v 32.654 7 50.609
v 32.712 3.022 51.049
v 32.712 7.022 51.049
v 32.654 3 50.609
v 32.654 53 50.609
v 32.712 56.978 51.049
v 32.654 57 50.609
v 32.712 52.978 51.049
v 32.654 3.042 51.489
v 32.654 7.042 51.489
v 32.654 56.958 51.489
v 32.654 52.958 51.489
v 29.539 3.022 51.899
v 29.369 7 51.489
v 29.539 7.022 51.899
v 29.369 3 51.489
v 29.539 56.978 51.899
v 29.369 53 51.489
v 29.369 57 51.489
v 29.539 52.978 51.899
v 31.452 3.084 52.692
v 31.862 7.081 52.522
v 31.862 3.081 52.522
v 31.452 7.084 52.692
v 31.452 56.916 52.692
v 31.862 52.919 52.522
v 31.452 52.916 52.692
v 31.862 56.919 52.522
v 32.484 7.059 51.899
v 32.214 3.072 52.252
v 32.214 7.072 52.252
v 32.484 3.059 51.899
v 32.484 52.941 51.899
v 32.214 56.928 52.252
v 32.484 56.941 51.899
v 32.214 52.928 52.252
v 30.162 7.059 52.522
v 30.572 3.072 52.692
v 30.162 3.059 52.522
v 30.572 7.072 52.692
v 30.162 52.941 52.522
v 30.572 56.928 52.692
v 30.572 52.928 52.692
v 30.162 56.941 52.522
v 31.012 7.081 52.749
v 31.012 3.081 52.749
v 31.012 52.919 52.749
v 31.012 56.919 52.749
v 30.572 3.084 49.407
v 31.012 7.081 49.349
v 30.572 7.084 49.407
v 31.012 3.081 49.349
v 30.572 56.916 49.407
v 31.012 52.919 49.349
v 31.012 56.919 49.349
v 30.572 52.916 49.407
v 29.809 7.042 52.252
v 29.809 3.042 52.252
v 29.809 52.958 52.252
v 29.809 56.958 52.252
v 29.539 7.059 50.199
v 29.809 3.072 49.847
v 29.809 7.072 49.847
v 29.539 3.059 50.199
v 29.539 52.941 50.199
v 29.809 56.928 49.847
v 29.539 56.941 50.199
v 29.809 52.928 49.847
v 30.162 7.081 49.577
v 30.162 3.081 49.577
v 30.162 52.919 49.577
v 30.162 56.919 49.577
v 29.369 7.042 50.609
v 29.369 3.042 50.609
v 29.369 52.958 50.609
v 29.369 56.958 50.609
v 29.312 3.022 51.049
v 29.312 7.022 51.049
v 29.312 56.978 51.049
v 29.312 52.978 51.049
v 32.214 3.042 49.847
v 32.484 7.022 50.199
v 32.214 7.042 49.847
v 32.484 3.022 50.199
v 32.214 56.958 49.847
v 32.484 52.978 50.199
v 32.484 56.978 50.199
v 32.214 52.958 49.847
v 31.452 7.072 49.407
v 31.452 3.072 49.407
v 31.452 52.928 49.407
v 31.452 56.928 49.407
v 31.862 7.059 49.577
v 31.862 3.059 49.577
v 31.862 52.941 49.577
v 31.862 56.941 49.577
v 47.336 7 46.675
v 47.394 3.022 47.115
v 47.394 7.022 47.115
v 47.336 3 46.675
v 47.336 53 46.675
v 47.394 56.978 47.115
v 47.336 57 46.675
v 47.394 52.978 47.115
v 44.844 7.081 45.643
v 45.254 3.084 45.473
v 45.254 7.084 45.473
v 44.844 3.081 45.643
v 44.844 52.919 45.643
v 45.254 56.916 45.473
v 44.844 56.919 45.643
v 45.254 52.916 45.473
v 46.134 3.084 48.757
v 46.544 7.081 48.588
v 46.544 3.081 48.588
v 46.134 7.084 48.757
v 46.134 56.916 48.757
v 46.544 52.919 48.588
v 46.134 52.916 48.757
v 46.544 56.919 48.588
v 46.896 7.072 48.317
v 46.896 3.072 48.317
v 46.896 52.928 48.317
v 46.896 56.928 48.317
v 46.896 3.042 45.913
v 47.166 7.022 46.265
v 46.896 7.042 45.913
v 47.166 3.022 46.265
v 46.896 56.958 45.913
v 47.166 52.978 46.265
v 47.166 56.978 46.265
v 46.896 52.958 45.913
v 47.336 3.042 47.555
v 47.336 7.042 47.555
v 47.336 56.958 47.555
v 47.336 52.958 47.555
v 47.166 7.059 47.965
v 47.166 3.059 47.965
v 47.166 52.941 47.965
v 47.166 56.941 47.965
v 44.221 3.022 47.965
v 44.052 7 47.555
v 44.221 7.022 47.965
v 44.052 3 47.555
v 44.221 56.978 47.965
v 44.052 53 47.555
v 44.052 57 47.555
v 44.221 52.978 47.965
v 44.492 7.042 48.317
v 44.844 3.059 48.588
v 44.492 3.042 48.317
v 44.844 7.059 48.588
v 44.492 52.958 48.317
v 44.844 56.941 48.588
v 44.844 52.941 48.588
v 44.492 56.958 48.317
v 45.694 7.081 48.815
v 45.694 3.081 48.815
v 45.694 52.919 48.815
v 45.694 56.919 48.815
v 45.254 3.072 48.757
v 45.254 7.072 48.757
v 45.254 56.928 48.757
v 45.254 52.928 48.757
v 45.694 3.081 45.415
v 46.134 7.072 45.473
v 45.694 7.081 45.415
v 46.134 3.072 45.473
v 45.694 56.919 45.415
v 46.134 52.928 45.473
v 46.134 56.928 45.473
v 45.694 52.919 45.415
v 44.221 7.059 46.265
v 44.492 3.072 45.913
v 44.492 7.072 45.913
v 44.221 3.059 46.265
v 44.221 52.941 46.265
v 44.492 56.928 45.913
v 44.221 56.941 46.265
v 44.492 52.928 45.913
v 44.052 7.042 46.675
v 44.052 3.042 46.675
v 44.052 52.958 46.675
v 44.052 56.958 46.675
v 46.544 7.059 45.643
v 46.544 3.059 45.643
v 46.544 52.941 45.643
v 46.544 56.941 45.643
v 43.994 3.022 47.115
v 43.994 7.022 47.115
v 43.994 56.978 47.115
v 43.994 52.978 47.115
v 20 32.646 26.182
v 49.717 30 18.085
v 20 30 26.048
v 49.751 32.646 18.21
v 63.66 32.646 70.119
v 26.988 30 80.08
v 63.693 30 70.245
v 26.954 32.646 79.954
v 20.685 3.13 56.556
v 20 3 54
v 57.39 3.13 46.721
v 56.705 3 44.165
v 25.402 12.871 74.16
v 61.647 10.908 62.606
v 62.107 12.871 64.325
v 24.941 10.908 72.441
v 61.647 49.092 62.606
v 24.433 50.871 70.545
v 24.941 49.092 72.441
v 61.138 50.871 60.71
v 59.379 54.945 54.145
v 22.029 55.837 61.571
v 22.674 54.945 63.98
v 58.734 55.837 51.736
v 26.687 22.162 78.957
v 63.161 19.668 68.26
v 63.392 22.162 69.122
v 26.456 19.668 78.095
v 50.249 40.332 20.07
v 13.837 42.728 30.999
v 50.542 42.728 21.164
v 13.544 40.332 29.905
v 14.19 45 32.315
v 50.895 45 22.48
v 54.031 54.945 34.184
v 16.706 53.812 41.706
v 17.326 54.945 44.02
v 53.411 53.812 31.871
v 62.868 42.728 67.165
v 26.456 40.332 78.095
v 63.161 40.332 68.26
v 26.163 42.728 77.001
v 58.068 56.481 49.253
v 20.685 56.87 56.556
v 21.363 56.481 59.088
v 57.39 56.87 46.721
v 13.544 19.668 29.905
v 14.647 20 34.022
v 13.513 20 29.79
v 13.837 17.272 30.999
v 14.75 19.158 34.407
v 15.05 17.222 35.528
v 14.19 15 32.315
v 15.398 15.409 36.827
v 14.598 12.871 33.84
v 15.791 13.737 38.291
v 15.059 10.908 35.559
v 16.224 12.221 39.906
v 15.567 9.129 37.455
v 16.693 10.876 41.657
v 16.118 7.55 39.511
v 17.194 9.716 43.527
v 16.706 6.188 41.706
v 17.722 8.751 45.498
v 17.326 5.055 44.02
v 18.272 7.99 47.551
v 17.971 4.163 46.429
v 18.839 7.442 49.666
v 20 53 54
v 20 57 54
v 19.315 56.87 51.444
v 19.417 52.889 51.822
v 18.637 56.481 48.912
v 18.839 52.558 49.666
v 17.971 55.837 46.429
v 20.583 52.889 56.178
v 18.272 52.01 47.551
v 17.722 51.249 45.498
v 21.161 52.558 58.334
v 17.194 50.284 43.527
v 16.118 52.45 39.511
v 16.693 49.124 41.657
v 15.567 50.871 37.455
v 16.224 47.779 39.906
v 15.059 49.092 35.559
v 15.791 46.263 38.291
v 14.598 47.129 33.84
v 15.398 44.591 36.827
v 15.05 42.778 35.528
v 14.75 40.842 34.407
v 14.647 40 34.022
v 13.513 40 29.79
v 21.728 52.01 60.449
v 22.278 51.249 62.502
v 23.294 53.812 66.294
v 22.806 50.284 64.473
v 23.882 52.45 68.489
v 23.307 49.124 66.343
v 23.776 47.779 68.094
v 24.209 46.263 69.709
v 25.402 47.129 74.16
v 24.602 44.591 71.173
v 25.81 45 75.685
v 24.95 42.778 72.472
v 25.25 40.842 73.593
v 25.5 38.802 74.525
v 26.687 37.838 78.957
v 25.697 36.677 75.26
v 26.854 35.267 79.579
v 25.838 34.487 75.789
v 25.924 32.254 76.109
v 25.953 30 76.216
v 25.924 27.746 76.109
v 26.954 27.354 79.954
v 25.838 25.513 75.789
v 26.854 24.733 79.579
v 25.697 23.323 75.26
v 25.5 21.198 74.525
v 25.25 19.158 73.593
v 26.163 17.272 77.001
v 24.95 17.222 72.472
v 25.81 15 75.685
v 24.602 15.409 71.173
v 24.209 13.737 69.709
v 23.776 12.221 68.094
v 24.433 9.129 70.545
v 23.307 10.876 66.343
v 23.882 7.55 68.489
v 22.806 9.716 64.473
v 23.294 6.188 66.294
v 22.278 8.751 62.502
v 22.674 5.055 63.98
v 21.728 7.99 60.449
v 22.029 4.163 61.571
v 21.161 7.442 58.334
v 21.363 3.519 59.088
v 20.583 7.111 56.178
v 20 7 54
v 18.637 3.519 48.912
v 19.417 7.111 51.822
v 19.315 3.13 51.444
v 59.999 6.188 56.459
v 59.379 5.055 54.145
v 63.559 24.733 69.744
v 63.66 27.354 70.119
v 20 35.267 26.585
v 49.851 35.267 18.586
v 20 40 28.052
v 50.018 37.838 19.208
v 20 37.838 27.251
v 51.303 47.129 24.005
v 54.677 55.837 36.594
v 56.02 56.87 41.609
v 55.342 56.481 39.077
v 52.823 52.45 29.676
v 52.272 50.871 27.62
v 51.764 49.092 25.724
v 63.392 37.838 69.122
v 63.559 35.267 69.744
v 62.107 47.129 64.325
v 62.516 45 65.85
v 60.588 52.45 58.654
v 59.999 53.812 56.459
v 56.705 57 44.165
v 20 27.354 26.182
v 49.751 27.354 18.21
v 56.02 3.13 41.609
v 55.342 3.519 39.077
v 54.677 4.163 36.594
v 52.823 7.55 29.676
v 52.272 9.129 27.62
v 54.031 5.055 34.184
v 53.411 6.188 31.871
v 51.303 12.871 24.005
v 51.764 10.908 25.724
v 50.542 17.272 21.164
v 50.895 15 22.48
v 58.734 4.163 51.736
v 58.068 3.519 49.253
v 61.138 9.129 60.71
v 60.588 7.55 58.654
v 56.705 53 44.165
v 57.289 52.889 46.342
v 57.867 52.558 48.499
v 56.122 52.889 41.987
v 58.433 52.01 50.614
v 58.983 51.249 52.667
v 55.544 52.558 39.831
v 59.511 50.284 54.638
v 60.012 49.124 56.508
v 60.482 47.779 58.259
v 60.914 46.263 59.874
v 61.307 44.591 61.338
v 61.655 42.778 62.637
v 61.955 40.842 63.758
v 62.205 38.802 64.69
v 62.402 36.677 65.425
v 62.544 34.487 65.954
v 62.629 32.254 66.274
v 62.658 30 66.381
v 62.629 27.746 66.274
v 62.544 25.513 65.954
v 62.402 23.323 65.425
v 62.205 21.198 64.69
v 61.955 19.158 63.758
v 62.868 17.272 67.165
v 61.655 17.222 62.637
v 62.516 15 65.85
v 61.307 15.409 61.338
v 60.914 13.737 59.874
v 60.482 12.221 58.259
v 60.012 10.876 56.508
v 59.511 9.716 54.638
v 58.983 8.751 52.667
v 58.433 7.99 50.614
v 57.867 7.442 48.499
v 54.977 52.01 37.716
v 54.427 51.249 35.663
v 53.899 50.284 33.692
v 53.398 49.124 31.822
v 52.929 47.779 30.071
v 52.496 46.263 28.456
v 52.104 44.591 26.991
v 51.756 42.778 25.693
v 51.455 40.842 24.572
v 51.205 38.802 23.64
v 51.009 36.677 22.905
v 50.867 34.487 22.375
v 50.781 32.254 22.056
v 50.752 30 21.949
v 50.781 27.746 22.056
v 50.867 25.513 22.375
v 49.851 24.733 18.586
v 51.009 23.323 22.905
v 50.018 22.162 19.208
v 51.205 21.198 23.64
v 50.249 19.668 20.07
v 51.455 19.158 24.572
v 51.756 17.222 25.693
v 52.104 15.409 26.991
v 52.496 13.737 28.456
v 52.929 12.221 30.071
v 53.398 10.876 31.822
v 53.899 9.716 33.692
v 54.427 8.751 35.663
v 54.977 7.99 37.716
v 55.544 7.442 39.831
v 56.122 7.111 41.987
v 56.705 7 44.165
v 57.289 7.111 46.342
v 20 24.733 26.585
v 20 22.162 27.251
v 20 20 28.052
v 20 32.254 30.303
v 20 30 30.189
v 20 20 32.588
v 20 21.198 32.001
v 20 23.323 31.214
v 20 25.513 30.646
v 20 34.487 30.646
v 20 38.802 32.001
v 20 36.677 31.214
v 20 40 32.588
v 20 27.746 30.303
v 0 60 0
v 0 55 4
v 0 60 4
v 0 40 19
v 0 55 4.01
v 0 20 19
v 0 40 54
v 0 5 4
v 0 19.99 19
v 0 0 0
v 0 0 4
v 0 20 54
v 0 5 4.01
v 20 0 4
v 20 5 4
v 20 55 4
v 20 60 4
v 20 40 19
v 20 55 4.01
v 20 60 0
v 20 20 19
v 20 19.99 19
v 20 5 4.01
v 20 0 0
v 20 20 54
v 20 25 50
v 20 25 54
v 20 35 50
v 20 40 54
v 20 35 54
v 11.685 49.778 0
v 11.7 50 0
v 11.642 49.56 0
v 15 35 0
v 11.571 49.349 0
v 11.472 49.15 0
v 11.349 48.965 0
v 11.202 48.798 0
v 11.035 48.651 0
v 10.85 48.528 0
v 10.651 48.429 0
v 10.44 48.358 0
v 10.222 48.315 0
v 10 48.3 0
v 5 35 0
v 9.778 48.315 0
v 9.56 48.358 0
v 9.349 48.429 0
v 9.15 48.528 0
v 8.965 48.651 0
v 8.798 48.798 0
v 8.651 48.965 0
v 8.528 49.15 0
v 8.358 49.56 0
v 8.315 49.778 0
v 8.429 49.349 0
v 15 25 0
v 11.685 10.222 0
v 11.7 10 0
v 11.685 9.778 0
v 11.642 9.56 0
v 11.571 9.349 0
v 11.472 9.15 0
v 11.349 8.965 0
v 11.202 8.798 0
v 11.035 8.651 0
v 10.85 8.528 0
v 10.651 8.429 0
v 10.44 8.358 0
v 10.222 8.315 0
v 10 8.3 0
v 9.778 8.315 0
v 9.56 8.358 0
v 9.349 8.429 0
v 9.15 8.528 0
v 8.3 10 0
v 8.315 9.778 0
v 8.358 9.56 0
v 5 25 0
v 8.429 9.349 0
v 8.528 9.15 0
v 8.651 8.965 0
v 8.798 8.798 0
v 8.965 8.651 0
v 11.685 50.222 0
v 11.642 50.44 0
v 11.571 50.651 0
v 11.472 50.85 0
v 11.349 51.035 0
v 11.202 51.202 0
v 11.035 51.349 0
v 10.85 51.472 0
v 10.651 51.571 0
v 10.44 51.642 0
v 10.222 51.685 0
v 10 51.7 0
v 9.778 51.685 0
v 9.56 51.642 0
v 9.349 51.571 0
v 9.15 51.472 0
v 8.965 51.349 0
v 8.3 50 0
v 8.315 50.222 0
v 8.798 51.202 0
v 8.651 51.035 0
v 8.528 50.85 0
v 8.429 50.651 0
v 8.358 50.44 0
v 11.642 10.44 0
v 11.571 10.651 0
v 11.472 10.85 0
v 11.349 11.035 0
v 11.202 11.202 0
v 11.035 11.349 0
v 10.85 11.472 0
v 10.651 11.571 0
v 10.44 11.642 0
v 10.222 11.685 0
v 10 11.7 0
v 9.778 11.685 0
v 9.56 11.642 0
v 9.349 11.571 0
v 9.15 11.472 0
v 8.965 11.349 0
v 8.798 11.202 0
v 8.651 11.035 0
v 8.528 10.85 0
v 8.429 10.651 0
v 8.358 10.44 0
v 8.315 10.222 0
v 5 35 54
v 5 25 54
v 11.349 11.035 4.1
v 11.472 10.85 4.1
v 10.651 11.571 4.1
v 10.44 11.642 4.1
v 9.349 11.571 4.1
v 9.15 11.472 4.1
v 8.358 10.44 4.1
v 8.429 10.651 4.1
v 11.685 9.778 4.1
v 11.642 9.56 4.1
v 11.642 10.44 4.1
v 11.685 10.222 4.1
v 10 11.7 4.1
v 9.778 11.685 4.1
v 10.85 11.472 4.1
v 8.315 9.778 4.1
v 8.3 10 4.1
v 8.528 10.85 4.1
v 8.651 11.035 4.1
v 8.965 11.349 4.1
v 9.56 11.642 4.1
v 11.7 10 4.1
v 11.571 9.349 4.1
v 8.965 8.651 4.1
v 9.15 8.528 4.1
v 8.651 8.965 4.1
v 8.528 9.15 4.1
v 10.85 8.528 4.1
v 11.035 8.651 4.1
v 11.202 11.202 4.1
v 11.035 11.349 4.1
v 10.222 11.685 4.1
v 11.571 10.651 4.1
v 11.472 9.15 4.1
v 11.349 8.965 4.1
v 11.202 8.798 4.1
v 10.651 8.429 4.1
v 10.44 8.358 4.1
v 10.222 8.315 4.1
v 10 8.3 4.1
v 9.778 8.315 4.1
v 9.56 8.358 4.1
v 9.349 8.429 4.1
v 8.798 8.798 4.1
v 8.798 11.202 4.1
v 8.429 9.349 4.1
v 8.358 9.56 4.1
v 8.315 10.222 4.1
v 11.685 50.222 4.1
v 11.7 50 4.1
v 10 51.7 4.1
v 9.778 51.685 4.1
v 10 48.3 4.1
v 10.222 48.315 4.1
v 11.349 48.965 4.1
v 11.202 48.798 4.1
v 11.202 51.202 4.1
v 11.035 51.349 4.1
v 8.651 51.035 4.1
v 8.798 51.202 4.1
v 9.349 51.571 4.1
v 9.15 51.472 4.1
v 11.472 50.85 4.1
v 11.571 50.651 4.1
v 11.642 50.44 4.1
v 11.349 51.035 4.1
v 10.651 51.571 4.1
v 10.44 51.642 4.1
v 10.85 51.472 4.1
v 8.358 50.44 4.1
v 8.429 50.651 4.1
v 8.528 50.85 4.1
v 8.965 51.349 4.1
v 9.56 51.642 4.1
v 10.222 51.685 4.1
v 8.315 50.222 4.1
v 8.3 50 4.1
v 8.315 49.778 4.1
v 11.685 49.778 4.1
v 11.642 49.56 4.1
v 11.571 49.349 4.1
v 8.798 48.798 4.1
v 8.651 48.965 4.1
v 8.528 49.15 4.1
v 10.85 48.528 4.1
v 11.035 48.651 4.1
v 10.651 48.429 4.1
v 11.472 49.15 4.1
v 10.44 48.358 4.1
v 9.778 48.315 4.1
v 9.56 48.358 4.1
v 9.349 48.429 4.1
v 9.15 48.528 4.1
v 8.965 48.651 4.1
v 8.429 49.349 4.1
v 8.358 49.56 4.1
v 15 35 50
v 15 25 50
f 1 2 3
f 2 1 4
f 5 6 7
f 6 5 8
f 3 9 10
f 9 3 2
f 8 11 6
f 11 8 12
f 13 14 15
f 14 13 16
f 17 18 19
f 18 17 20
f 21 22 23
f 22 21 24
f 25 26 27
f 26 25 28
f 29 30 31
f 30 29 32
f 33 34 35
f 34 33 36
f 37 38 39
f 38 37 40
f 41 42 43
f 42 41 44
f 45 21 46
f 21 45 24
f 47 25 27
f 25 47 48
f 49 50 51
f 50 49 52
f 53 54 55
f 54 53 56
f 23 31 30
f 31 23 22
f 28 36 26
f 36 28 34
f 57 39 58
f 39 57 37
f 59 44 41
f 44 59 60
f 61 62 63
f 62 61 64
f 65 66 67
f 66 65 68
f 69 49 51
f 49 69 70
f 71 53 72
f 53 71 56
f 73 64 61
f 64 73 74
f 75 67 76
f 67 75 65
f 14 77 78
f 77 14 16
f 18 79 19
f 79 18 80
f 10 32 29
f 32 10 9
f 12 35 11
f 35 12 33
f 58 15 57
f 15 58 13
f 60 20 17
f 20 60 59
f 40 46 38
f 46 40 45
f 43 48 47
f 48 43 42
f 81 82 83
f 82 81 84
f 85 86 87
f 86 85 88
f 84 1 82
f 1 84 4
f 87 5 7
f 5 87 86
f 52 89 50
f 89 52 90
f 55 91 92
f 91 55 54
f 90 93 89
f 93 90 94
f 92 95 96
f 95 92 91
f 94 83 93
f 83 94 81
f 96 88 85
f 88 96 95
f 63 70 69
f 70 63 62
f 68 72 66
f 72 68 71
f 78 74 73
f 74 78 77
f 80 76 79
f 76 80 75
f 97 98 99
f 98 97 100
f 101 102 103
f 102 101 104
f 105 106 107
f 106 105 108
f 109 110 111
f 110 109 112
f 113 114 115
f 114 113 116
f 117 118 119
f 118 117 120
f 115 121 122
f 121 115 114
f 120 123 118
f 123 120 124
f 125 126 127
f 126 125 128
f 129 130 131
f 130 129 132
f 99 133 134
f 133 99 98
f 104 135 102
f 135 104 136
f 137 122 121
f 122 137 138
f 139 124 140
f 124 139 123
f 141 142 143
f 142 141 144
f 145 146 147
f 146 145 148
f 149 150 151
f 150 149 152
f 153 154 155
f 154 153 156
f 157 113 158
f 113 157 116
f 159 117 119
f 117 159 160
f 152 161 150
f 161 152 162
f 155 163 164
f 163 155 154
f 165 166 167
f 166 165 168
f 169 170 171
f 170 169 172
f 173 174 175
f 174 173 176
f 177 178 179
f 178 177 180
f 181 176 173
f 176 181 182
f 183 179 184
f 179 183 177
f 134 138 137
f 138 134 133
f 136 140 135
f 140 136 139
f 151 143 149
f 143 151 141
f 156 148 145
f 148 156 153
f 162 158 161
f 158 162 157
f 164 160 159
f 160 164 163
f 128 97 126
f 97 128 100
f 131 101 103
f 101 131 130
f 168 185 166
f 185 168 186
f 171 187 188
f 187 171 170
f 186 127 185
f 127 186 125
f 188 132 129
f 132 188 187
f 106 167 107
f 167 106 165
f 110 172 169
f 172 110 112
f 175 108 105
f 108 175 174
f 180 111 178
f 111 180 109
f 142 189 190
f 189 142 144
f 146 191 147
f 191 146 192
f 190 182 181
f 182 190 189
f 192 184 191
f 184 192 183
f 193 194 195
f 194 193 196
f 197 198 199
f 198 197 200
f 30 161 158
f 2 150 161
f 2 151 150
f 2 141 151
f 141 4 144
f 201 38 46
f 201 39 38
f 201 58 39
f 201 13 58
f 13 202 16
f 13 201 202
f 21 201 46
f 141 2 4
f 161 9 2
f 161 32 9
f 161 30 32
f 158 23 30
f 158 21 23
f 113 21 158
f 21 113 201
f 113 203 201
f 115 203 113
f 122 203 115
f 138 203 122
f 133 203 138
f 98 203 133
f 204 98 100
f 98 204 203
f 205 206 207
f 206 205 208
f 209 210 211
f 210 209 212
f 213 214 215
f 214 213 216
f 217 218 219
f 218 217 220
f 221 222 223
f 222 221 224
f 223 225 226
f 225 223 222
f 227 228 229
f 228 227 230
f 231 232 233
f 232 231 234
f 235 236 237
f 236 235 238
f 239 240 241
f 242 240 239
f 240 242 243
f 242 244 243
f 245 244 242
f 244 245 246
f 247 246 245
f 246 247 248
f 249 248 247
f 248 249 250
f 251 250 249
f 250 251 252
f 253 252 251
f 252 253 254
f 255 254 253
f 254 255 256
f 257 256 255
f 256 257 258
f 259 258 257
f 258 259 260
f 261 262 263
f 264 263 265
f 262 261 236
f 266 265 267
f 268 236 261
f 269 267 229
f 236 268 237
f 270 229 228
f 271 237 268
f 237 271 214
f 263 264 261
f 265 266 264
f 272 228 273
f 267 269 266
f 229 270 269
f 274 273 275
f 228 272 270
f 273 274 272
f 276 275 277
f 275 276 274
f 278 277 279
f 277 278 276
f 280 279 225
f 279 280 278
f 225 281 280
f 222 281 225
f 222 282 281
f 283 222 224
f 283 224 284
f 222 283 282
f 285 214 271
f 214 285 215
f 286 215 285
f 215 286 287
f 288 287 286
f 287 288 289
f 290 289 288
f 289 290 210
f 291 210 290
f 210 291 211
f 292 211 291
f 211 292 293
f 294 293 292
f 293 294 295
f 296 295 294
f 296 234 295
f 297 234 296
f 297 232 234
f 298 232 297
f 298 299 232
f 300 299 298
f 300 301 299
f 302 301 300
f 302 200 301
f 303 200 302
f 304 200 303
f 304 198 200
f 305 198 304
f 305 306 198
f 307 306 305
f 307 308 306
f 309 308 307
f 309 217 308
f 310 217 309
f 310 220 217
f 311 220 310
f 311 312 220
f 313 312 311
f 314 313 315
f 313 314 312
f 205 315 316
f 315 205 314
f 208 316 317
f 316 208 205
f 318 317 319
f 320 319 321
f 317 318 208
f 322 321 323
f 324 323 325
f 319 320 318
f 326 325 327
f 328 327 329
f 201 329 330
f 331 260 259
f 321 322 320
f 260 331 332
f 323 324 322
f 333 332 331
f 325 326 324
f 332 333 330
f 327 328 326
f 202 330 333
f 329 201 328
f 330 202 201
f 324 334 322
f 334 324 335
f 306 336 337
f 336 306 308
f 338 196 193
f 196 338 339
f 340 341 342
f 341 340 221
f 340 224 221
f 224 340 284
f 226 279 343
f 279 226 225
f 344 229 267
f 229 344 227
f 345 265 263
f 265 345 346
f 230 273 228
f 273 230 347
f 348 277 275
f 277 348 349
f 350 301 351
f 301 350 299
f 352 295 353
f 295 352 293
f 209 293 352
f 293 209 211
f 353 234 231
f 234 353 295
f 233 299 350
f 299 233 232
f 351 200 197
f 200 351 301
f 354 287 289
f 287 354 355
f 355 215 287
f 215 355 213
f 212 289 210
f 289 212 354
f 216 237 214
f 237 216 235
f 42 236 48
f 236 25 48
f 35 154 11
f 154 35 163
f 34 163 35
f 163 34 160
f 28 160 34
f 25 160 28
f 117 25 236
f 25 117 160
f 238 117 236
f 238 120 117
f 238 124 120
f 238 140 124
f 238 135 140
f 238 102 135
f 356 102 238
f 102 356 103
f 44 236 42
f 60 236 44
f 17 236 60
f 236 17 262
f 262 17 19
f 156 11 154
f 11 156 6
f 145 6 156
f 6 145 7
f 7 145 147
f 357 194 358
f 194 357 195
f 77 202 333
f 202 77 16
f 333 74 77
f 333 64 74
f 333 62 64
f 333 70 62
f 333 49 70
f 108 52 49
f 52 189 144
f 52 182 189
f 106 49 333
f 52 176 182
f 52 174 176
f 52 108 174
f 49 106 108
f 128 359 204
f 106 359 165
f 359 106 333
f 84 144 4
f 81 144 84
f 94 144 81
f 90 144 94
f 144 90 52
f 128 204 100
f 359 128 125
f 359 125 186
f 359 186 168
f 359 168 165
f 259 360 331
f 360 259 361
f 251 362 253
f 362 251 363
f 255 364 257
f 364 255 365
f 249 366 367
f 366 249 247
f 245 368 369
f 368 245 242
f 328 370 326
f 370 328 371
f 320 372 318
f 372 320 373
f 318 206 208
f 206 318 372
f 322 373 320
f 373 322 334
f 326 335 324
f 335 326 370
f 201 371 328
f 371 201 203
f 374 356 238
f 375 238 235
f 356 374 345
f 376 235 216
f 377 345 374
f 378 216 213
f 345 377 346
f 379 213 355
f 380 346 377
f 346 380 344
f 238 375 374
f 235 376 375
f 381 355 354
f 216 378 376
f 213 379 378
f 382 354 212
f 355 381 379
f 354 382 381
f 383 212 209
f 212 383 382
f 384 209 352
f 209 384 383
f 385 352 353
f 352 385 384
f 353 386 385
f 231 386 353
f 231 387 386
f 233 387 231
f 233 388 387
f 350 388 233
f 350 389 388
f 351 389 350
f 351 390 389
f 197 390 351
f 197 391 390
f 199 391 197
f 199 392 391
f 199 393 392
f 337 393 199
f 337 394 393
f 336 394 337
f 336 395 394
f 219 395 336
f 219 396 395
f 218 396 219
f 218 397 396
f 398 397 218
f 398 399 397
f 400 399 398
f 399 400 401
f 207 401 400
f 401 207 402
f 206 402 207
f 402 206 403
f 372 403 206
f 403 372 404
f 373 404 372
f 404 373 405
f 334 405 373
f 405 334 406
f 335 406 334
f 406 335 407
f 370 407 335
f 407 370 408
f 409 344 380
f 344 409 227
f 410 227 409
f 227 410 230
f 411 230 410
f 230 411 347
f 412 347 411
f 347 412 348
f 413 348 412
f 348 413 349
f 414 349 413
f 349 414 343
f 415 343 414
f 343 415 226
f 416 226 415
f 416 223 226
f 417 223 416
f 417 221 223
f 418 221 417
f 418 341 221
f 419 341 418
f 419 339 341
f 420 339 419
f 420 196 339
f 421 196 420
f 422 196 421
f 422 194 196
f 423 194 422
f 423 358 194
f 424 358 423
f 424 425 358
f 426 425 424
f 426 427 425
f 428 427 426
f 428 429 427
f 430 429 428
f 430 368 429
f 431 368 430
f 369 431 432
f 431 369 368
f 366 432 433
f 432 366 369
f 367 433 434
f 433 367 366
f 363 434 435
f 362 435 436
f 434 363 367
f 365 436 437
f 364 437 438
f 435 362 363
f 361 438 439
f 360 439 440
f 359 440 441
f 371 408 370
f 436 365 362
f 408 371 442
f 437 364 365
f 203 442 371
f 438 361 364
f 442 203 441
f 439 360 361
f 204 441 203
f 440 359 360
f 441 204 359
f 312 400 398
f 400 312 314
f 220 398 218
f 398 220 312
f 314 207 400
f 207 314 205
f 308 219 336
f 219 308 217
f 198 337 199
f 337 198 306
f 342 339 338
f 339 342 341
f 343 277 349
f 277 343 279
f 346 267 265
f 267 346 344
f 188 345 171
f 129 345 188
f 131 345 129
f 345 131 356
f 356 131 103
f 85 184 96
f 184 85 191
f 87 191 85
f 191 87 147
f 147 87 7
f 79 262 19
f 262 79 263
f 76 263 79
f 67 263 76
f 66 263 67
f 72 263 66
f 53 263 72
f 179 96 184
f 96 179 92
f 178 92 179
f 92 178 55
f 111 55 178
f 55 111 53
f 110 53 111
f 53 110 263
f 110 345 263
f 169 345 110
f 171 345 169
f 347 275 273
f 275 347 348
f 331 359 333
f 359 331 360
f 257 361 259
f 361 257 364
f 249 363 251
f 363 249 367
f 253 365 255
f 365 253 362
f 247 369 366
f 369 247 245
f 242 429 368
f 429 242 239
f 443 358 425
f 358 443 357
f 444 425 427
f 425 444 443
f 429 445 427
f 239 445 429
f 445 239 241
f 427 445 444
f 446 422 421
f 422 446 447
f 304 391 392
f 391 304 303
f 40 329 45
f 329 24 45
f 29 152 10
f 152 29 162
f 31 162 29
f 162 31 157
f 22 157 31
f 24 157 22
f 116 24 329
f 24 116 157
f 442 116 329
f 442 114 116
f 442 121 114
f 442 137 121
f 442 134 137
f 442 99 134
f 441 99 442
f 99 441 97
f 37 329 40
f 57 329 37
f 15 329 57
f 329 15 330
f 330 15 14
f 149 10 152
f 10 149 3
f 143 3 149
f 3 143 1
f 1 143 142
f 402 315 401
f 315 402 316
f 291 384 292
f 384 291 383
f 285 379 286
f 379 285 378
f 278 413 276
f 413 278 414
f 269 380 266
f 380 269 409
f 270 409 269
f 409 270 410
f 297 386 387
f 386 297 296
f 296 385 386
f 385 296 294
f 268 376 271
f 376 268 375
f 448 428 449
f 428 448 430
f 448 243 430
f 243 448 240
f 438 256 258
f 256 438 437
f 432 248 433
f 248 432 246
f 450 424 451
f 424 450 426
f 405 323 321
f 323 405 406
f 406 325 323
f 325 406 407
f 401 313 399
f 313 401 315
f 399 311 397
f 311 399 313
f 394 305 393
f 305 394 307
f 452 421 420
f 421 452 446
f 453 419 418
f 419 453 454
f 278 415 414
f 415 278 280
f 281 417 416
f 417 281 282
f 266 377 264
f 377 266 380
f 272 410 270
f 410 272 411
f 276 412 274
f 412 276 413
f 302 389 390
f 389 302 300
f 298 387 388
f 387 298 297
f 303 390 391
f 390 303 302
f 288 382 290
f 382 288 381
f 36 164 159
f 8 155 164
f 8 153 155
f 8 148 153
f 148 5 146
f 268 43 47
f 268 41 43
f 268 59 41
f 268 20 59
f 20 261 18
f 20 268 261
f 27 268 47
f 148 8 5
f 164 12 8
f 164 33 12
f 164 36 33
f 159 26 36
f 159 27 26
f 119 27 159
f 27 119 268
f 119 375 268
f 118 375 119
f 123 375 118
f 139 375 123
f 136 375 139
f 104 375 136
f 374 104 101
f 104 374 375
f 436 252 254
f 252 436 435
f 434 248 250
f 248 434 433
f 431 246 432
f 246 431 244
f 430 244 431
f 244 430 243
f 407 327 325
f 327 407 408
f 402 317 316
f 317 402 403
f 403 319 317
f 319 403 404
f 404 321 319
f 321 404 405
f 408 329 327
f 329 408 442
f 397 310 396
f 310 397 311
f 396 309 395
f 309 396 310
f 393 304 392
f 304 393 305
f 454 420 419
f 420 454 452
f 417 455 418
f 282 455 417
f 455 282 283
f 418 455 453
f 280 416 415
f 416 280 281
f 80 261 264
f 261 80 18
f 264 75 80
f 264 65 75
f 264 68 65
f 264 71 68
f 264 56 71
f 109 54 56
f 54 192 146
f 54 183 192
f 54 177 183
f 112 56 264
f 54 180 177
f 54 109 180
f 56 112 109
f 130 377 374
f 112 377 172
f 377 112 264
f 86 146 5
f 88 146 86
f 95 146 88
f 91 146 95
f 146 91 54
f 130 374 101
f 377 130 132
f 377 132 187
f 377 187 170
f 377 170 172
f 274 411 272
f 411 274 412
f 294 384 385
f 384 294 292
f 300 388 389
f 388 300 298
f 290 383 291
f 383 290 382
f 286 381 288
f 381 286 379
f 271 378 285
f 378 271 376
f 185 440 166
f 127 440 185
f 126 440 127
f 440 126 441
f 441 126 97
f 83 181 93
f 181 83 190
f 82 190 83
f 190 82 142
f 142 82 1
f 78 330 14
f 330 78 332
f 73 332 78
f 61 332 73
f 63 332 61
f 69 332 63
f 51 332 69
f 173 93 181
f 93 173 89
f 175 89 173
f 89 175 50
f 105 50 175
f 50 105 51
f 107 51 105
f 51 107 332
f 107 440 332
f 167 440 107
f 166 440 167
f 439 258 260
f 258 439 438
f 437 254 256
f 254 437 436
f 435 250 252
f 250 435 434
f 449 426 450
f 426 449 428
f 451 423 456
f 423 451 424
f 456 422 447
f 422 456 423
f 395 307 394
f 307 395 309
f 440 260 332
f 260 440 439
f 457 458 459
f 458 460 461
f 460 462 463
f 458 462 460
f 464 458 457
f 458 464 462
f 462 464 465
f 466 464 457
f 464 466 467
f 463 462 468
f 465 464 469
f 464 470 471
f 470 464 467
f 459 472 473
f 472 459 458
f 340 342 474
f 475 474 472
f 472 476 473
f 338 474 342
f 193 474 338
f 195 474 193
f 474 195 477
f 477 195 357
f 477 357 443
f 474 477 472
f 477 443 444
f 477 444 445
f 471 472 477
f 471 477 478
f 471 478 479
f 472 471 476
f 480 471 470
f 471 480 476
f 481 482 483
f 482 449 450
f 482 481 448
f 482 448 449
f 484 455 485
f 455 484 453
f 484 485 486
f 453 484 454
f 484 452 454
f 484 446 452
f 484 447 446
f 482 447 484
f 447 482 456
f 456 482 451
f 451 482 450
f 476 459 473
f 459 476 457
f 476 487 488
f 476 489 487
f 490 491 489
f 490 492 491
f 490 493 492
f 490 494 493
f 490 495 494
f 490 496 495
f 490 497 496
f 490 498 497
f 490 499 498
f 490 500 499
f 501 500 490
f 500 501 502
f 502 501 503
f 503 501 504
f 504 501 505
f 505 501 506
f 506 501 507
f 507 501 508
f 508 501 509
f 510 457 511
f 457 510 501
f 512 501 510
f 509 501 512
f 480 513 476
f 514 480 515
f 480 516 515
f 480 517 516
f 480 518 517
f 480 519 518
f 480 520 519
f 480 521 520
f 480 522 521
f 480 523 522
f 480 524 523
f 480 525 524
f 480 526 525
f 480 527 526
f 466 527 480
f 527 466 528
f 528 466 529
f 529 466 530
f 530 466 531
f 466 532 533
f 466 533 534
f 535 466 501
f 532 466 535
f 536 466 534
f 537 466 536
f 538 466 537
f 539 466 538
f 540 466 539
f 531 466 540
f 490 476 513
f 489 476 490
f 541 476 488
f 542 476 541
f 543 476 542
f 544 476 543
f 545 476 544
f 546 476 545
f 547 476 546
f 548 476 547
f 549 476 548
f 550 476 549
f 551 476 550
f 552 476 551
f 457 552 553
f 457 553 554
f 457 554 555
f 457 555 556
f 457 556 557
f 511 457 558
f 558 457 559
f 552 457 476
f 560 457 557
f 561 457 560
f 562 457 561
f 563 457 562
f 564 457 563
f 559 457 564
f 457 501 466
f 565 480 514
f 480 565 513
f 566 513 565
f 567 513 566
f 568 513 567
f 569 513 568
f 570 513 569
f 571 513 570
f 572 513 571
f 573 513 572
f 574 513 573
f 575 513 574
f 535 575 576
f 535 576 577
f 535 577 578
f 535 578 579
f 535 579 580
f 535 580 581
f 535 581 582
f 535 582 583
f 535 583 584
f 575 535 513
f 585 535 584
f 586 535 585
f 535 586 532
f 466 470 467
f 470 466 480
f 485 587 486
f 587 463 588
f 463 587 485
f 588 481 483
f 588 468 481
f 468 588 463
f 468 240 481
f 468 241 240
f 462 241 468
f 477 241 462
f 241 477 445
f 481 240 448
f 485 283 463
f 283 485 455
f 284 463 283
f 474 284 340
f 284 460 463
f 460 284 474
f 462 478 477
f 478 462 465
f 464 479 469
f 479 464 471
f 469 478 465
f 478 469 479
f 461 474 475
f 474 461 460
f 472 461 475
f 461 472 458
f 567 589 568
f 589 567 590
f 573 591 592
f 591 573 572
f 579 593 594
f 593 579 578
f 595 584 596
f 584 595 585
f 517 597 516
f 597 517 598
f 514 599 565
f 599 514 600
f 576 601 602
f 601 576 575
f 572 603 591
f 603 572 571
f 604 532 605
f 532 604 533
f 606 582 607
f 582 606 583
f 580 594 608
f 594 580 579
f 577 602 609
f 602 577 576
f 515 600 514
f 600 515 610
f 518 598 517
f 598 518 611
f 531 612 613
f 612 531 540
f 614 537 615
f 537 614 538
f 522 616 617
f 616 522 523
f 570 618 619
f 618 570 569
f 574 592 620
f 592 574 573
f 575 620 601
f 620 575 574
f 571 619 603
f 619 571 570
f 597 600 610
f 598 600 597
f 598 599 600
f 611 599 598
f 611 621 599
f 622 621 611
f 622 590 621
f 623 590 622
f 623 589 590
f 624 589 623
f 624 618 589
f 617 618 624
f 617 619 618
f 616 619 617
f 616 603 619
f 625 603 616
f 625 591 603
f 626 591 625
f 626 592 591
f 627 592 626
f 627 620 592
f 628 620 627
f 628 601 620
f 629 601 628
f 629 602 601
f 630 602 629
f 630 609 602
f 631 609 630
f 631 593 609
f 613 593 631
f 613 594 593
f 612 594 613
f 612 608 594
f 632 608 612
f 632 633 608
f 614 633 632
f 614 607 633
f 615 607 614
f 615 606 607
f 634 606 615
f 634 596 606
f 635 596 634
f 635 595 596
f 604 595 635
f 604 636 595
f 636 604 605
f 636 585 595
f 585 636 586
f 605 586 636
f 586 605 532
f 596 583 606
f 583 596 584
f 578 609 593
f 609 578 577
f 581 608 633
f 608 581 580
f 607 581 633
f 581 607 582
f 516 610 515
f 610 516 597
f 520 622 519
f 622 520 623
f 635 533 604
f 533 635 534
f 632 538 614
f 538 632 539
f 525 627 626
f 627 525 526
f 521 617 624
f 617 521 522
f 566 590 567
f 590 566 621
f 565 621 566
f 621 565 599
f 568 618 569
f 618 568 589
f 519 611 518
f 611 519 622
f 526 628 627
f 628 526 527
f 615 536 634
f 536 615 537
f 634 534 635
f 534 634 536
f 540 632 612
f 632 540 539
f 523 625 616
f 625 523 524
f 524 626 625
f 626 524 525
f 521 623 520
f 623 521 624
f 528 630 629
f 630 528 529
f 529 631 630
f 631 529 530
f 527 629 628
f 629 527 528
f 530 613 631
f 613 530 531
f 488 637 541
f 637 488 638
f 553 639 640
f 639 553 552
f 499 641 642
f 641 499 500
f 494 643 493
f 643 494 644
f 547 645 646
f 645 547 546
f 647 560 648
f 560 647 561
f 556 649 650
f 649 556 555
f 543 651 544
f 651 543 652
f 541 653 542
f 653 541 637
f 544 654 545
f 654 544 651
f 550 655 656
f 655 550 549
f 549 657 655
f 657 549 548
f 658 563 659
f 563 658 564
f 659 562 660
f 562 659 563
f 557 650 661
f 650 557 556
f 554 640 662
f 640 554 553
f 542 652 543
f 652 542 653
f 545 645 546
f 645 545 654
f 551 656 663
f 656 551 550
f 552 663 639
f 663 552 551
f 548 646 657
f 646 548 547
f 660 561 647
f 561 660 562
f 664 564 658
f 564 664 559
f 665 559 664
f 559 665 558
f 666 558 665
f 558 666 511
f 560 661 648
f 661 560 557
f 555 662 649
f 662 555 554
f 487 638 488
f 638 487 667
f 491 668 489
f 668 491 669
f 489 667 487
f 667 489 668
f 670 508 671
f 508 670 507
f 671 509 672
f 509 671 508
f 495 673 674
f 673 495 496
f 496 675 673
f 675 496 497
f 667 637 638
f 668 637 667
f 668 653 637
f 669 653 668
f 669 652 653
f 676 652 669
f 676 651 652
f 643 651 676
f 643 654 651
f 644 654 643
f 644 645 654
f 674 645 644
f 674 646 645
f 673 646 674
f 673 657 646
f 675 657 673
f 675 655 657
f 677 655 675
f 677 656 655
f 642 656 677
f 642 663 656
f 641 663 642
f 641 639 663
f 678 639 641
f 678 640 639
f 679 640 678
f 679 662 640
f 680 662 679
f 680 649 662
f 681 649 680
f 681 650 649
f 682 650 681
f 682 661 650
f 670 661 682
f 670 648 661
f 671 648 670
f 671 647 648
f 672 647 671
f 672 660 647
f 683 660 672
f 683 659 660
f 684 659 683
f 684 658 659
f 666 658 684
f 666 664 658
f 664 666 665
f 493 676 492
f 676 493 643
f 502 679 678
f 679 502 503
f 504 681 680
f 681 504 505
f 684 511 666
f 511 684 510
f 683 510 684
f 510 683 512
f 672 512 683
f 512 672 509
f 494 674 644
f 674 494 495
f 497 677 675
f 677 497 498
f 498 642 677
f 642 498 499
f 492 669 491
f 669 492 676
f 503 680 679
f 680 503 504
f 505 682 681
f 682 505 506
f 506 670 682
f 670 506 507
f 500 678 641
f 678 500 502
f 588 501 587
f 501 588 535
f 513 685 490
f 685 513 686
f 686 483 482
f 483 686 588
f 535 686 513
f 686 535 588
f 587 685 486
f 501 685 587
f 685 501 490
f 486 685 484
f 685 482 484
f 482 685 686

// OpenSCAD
// ============================================================
// KAMERA_BRAKETI.SCAD — USB Kamera Braketi  v1.0
// Kapağa ayrı parça olarak basılır, 2× M3 ile monte edilir.
//
// BASKI YÖNÜ: taban (BASE) aşağıda, kol (ARM) yukarıda.
// Kamera silindiri yatay basılır → slicer'da yalnızca iç bore
// altında support gerekebilir (~5–15 dakika ek süre).
//
// MONTAJ:
//   Kapağa: 2× M3 vida (taban alt yüzeyi → kapak üst yüzeyi)
//   Kameraya: 2× M3 set vidası (silindir yan duvar, ekvator)
//   USB kablo: kol merkezi → taban → kapak içi
//
// NOT: Gusset'ler (destek üçgenleri) kol tabanına entegre —
// ayrı vida gerektirmez; taban M3 vidaları ile birlikte tutunur.
// ============================================================

$fn = 48;

// === TABAN ===
BASE_W  = 60;    // genişlik y
BASE_D  = 20;    // derinlik x
BASE_T  = 4;     // kalınlık z

// === KOL ===
ARM_D   = 20;    // derinlik x (kablo kanalı etrafında 5mm duvar)
ARM_W   = 20;    // genişlik y
ARM_H   = 50;    // yükseklik z

// === KAMERA YUVASI ===
CAM_ID  = 46;    // iç çap — Ø42mm kamera + 2mm tolerans her yanda
CAM_OD  = 54;    // dış çap — 4mm et kalınlığı
CAM_LN  = 38;    // silindir uzunluğu
CAM_ANG = 15;    // aşağı bakış açısı (derece)

// === GUSSET (DESTEK ÜÇGENİ) ===
GS      = 15;    // üçgen yüksekliği ve tabanı

// === DİĞER ===
CB      = 10;    // USB kablo kanalı (kol içi kare kesit)
M3D     = 3.4;   // M3 vida deliği çapı

// --- Türetilen değerler ---
arm_x0  = (BASE_D - ARM_D) / 2;   // = 0  (kol taban x kenarına flush)
arm_y0  = (BASE_W - ARM_W) / 2;   // = 20 (kol y merkezde)

// ============================================================
// KAMERA YUVASI MODÜLÜ
// Silindir +X yönüne bakar (araç ilerisi), 15° aşağı eğik.
// Kamera ön açık ucundan (x=CAM_LN) kaydırılarak yerleştirilir.
// 2× M3 set vidası z=0 ekvatorda yan duvara dik geçer.
// ============================================================
module kamera_yuvasi() {
    difference() {
        // Dış silindir (X ekseninde, x = 0 → CAM_LN)
        rotate([0, 90, 0])
            cylinder(d=CAM_OD, h=CAM_LN, $fn=64);

        // İç kamera boşluğu
        rotate([0, 90, 0])
            translate([0, 0, -0.1])
                cylinder(d=CAM_ID, h=CAM_LN + 0.2, $fn=64);

        // 2× M3 set vidası — z=0 ekvator, Y ekseni boyunca
        // Duvar kalınlığı bu noktada 4mm, vida tamamen duvarda
        for (lx = [CAM_LN * 0.3, CAM_LN * 0.7])
            translate([lx, 0, 0])
                rotate([90, 0, 0])
                    cylinder(d=M3D, h=CAM_OD + 2, center=true, $fn=24);
    }
}

// ============================================================
// ANA MODEL
// ============================================================
difference() {
    union() {
        // Taban plaka
        cube([BASE_D, BASE_W, BASE_T]);

        // Dikey kol
        translate([arm_x0, arm_y0, BASE_T])
            cube([ARM_D, ARM_W, ARM_H]);

        // ── Gusset sol: y = arm_y0 yüzünden taban sol kenarına ──
        // Hull: kol yüzü kenarı (yüksek) + taban dış noktası (alçak)
        hull() {
            translate([arm_x0, arm_y0 - 0.01, BASE_T])
                cube([ARM_D, 0.01, GS]);
            translate([arm_x0, arm_y0 - GS, BASE_T])
                cube([ARM_D, 0.01, 0.01]);
        }

        // ── Gusset sağ: y = arm_y0+ARM_W yüzünden taban sağ kenarına ──
        hull() {
            translate([arm_x0, arm_y0 + ARM_W - 0.01, BASE_T])
                cube([ARM_D, 0.01, GS]);
            translate([arm_x0, arm_y0 + ARM_W + GS - 0.01, BASE_T])
                cube([ARM_D, 0.01, 0.01]);
        }

        // Silindirik kamera yuvası — kolun ön yüzünde, 15° aşağı eğik
        // x=BASE_D: kolun ön kenarı → bore kol gövdesine girmez
        translate([BASE_D, BASE_W/2, BASE_T + ARM_H])
            rotate([0, CAM_ANG, 0])
                kamera_yuvasi();
    }

    // ── Taban M3 montaj delikleri (2 adet — kapağa bağlantı) ──
    // Global konumlar: x=200, y=70 ve y=110 (kapak.scad ile hizalı)
    for (dy = [BASE_W/2 - 20, BASE_W/2 + 20])
        translate([BASE_D/2, dy, -0.1])
            cylinder(d=M3D, h=BASE_T + 0.2);

    // ── USB kablo kanalı (dikey, kol merkezi) ──
    translate([BASE_D/2 - CB/2, BASE_W/2 - CB/2, BASE_T - 0.1])
        cube([CB, CB, ARM_H + 2]);

    // ── Kablo yatay bağlantı slotu: kanal → kol ön yüzü (silindir arka açıklığı) ──
    // x=5→20, silindir bore'una L-dönüşü ile bağlanır
    translate([BASE_D/2 - CB/2, BASE_W/2 - CB/2, BASE_T + ARM_H - 4])
        cube([BASE_D/2 + CB/2, CB, 6]);

    // ── Kablo taban çıkış deliği ──
    translate([BASE_D/2 - CB/2, BASE_W/2 - CB/2, -0.1])
        cube([CB, CB, BASE_T + 0.2]);
}
